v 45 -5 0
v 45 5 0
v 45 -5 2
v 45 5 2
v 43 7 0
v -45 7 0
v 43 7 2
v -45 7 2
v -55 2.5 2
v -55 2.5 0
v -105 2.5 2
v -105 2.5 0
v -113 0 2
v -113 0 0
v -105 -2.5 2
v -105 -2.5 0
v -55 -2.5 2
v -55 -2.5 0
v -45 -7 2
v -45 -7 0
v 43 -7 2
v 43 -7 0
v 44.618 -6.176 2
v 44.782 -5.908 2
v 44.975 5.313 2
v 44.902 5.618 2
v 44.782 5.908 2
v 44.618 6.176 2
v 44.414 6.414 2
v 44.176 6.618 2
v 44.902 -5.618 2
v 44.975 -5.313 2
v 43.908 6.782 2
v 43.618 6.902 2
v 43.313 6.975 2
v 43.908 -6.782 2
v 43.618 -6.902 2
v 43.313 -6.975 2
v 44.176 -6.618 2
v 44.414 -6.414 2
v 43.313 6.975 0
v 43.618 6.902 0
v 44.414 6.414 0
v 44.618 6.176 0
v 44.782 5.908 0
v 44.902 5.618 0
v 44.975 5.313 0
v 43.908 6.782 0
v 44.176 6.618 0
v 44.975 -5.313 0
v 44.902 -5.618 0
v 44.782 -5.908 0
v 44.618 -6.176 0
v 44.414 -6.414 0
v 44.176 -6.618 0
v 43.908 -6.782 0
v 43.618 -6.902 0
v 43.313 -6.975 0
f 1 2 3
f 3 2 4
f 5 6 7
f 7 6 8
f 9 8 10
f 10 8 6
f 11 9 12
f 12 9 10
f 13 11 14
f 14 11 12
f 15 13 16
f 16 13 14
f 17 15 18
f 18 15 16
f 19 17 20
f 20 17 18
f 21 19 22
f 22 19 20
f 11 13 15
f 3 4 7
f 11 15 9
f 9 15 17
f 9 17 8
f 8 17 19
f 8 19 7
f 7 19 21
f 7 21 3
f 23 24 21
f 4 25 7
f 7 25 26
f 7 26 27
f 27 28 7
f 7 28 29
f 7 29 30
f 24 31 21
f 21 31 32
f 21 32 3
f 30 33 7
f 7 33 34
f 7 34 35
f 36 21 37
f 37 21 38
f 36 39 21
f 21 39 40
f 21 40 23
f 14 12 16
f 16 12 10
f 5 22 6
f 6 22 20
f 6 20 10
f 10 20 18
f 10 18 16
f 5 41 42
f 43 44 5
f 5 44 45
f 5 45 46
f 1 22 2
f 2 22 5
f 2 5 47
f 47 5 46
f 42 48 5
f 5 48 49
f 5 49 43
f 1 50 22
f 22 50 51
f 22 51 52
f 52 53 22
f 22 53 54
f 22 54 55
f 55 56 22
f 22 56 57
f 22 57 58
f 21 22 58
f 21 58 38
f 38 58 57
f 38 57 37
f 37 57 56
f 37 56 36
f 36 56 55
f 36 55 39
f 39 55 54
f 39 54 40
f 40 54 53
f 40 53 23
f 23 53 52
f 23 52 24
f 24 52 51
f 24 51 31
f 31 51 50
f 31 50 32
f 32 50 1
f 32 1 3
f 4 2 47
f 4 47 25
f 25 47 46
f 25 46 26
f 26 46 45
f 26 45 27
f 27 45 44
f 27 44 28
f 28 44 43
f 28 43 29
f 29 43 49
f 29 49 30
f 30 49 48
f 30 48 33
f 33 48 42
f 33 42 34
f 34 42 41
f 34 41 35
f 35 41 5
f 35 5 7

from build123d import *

# Parameters (mm, degrees)
BOSS_EXTRUDE1_DEPTH = 2
FILLET1_R           = 2


with BuildPart() as part:
    # Sketch1 → Boss-Extrude1 (new body)
    with BuildSketch(Plane.XY):
        Polygon((-45, 7), (-55, 2.5), (-105, 2.5), (-113, 0), (-105, -2.5), (-55, -2.5), (-45, -7), (45, -7), (45, 7), align=None)
    extrude(amount=BOSS_EXTRUDE1_DEPTH)

    # Fillet1
    fillet1_edges = [part.edges().sort_by_distance(p)[0] for p in [
        (45, -7, 1),
        (45, 7, 1),
    ]]
    fillet(fillet1_edges, radius=FILLET1_R)


solid = part.part
